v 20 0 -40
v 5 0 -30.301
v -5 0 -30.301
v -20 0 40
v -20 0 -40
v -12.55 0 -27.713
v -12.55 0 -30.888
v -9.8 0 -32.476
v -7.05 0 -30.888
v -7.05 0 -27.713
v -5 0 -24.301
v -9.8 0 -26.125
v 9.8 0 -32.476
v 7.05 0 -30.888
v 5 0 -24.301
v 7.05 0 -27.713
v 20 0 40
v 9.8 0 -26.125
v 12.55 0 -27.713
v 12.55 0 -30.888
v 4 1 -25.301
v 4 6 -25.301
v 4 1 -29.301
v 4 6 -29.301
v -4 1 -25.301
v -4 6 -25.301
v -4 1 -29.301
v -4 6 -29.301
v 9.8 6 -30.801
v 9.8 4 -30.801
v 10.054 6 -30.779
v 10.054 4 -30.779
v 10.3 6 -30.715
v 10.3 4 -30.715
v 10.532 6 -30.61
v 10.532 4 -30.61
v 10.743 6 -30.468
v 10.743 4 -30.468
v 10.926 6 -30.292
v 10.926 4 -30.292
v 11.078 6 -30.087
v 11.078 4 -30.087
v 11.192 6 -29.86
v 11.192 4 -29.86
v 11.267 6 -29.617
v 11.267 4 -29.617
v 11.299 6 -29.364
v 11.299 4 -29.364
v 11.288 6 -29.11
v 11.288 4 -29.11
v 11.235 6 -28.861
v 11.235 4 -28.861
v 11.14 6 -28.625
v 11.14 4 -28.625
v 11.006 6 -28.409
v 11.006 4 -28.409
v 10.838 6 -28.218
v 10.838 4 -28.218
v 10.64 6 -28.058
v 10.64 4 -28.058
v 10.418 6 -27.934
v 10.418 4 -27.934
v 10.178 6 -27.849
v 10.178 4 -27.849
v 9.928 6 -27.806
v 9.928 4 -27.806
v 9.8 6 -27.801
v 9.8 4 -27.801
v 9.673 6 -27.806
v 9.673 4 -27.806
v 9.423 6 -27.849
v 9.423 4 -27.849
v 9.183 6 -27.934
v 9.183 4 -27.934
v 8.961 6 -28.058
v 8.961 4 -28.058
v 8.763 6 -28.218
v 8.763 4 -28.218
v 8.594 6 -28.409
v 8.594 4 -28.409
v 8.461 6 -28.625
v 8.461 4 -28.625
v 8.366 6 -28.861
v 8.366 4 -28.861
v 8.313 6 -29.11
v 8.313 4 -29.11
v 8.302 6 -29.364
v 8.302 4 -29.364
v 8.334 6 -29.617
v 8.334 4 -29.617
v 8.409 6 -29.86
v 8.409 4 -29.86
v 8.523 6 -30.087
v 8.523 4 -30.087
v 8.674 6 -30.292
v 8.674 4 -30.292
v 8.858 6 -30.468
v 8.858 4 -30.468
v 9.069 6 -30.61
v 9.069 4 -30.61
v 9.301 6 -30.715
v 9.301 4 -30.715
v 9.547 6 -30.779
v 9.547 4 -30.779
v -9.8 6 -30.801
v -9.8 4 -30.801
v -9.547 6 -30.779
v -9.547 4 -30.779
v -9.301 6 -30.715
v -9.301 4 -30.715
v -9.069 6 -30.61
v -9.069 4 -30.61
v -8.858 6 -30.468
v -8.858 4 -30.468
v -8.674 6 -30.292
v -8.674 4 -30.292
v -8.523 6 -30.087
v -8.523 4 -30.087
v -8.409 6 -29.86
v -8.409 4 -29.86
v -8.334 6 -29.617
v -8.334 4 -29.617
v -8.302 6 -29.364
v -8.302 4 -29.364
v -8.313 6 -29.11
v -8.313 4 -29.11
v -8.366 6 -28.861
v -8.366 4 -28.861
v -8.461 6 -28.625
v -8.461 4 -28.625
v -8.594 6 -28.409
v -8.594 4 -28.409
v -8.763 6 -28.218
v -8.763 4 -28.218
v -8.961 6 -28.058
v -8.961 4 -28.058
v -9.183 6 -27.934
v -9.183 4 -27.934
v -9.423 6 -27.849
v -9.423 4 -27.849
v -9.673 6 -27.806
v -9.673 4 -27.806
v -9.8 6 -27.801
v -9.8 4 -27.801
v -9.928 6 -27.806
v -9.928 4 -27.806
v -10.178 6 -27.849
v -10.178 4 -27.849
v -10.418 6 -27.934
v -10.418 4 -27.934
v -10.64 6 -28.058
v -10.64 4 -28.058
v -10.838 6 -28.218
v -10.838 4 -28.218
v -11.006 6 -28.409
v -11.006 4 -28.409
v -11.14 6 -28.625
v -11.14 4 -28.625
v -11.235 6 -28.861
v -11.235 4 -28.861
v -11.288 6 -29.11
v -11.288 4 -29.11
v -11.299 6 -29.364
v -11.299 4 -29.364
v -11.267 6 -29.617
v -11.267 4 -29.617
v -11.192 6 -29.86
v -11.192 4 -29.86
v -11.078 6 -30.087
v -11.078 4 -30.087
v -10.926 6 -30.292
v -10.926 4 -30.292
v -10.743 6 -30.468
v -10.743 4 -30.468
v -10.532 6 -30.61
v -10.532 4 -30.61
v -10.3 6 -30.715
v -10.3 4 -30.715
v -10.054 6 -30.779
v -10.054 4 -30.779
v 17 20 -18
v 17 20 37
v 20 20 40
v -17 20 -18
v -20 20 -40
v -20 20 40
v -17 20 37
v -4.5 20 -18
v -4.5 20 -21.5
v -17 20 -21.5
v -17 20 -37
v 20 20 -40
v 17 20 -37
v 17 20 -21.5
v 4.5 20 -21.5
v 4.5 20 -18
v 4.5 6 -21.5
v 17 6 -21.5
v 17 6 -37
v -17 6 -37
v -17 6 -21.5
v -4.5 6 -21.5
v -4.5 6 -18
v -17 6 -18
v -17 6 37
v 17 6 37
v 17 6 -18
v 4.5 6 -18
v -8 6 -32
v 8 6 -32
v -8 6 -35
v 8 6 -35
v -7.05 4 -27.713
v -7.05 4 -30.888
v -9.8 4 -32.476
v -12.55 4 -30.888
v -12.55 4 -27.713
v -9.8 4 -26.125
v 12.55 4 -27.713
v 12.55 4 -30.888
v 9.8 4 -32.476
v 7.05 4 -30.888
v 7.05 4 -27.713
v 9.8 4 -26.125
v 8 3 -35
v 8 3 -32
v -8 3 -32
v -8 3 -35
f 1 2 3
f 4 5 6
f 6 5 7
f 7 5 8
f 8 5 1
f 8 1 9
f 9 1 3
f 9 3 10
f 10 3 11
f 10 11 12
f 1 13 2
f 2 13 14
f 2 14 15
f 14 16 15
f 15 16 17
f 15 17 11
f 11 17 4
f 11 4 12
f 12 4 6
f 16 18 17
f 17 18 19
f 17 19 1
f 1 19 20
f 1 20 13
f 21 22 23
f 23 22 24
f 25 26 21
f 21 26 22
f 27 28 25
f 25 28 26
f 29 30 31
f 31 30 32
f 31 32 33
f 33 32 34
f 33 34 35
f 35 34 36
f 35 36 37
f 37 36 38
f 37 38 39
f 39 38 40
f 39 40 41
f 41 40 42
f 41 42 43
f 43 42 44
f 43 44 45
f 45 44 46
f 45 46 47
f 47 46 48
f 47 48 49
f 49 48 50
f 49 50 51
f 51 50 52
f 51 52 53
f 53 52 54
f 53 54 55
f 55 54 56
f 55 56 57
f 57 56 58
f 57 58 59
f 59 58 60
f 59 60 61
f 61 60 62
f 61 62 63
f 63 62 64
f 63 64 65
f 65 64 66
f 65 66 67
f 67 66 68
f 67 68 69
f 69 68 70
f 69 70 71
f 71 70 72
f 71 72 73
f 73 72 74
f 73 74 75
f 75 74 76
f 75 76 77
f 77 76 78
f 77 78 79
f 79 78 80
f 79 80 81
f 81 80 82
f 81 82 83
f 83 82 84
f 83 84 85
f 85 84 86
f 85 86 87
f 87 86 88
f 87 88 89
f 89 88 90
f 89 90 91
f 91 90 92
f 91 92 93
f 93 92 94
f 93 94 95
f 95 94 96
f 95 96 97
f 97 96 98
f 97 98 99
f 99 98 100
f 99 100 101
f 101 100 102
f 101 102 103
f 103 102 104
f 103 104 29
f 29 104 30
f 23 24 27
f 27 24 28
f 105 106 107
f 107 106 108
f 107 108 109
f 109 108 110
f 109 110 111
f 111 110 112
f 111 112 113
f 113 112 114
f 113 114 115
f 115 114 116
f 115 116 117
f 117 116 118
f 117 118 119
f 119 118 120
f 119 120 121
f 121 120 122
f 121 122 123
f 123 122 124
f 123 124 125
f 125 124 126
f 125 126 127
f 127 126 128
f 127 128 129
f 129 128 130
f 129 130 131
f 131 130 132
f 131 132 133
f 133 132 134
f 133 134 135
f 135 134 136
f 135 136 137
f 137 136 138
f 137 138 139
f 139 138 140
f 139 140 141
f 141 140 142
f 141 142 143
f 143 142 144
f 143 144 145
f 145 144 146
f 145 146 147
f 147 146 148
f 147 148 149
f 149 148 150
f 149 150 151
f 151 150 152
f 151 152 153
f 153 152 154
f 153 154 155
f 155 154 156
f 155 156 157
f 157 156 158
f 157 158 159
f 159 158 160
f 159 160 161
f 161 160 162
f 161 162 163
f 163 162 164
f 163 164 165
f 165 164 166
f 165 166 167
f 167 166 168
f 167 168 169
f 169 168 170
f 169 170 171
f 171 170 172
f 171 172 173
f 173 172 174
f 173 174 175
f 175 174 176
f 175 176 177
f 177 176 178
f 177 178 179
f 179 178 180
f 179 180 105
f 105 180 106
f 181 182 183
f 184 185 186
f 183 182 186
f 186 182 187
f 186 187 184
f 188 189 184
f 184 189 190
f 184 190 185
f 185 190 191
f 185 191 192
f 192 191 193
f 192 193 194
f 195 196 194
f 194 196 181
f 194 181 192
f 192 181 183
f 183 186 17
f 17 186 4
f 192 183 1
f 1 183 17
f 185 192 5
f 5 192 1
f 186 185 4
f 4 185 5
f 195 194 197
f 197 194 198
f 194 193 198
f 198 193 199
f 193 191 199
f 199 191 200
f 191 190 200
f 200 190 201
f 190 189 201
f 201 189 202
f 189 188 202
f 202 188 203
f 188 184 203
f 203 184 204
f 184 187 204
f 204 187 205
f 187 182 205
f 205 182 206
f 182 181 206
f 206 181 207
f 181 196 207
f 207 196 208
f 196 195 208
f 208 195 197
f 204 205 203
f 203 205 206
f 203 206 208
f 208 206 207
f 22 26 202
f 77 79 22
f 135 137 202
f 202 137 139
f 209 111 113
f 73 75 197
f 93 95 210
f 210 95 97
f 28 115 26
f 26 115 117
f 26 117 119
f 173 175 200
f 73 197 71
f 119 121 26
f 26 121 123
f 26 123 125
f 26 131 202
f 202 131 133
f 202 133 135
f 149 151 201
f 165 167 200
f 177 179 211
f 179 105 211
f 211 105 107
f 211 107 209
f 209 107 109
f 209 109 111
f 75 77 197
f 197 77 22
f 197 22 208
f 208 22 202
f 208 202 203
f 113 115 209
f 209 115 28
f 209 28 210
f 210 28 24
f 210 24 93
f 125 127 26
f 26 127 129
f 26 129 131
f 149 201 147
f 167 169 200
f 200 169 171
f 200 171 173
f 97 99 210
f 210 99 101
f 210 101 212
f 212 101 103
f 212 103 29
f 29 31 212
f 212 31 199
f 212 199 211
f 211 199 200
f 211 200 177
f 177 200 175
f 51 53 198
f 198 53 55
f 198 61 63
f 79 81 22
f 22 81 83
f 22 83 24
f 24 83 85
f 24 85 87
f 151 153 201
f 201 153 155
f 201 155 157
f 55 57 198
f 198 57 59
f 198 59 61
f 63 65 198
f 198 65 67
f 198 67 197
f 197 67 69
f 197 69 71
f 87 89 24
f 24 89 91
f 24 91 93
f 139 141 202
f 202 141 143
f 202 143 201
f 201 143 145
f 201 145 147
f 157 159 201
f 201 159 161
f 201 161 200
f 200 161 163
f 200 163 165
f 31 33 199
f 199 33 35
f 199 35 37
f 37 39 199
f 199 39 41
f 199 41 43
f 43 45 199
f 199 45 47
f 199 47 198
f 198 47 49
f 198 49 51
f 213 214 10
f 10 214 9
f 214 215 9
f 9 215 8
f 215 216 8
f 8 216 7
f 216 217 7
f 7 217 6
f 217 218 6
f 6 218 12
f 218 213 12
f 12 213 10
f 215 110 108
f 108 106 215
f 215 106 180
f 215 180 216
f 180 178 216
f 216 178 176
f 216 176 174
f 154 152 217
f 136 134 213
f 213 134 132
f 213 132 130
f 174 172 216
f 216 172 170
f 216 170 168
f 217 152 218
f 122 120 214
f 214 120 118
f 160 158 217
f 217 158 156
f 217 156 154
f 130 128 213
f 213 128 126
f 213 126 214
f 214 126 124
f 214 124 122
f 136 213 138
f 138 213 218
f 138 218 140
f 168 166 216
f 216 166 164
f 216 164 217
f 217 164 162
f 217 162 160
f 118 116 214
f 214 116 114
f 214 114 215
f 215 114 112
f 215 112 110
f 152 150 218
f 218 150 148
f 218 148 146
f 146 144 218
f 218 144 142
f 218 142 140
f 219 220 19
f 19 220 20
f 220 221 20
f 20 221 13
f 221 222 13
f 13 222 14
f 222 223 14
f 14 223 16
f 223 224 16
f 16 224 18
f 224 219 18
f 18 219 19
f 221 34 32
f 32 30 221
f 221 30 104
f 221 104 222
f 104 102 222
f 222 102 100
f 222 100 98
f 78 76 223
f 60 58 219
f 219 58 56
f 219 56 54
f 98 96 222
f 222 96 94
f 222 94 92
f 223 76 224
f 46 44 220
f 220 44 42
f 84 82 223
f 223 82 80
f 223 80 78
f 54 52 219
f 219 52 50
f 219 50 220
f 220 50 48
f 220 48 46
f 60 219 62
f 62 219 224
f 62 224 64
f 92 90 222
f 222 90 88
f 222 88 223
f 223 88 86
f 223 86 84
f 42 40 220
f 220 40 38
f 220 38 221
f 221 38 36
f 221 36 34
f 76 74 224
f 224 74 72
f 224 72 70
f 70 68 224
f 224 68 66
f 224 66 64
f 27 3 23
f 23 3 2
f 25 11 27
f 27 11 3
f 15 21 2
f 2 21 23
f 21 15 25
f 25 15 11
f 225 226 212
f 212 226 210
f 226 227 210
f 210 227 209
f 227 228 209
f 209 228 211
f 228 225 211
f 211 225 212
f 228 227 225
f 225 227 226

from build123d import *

# Parameters (mm, degrees)
SKETCH1_W                = 40
SKETCH1_H                = 80
SKETCH1_W_2              = 8
SKETCH1_H_2              = 4
SKETCH1_R                = 1.5
INITIAL_EXTRUDE_DEPTH    = 20
MAIN_START               = 6
SKETCH1_3_W              = 8
SKETCH1_3_H              = 4
SKETCH1_3_R              = 1.5
MAIN_CAVITY_DEPTH        = 43.989794856
SKETCH1_4_R              = 1.5
NUT_CAPTURE_BOTTOM_DEPTH = 4
SENSOR_HOLE_CHAMFER_SIZE = 1
SKETCH3_W                = 16
SKETCH3_H                = 3
GPIO_CUTOUT_SENSOR_DEPTH = 3


with BuildPart() as part:
    # Sketch1 → Initial Extrude (new body)
    with BuildSketch(Plane(origin=(0, 0, 0), x_dir=(1, 0, 0), z_dir=(0, 1, 0))):
        Rectangle(SKETCH1_W, SKETCH1_H)
        with Locations((0, 27.300592934)):
            Rectangle(SKETCH1_W_2, SKETCH1_H_2, mode=Mode.SUBTRACT)
        with Locations((-9.800487558, 29.300592934)):
            Circle(SKETCH1_R, mode=Mode.SUBTRACT)
        with Locations((9.800487558, 29.300592934)):
            Circle(SKETCH1_R, mode=Mode.SUBTRACT)
    extrude(amount=INITIAL_EXTRUDE_DEPTH)

    # Sketch1<3> → Main Cavity (cut, through all)
    with BuildSketch(Plane(origin=(0, 0, 0), x_dir=(1, 0, 0), z_dir=(0, 1, 0)).offset(MAIN_START)):
        Polygon((-17, -37), (17, -37), (17, 18), (4.5, 18), (4.5, 21.5), (17, 21.5), (17, 37), (-17, 37), (-17, 21.5), (-4.5, 21.5), (-4.5, 18), (-17, 18), align=None)
        with Locations((0, 27.300592934)):
            Rectangle(SKETCH1_3_W, SKETCH1_3_H, mode=Mode.SUBTRACT)
        with Locations((-9.800487558, 29.300592934)):
            Circle(SKETCH1_3_R, mode=Mode.SUBTRACT)
        with Locations((9.800487558, 29.300592934)):
            Circle(SKETCH1_3_R, mode=Mode.SUBTRACT)
    extrude(amount=MAIN_CAVITY_DEPTH, mode=Mode.SUBTRACT)

    # Sketch1<4> → Nut Capture Bottom (cut)
    # profile 1 of 2: a face of its own
    with BuildSketch(Plane(origin=(0, 0, 0), x_dir=(1, 0, 0), z_dir=(0, 1, 0))):
        Polygon((-7.050487558, 30.888306174), (-9.800487558, 32.476019414), (-12.550487558, 30.888306174), (-12.550487558, 27.712879693), (-9.800487558, 26.125166453), (-7.050487558, 27.712879693), align=None)
        with Locations((-9.800487558, 29.300592934)):
            Circle(SKETCH1_4_R, mode=Mode.SUBTRACT)
    # profile 2 of 2: a face of its own
    with BuildSketch(Plane(origin=(0, 0, 0), x_dir=(1, 0, 0), z_dir=(0, 1, 0))):
        Polygon((12.550487558, 30.888306174), (9.800487558, 32.476019414), (7.050487558, 30.888306174), (7.050487558, 27.712879693), (9.800487558, 26.125166453), (12.550487558, 27.712879693), align=None)
        with Locations((9.800487558, 29.300592934)):
            Circle(SKETCH1_4_R, mode=Mode.SUBTRACT)
    extrude(amount=NUT_CAPTURE_BOTTOM_DEPTH, mode=Mode.SUBTRACT)

    # Sensor Hole Chamfer
    sensor_hole_chamfer_edges = [part.edges().sort_by_distance(p)[0] for p in [
        (0, 0, -25.300592934),
        (-4, 0, -27.300592934),
        (0, 0, -29.300592934),
        (4, 0, -27.300592934),
    ]]
    chamfer(sensor_hole_chamfer_edges, length=SENSOR_HOLE_CHAMFER_SIZE)

    # Sketch3 → GPIO Cutout Sensor (cut)
    with BuildSketch(Plane(origin=(0, 6, 0), x_dir=(1, 0, 0), z_dir=(0, 1, 0))):
        with Locations((0, 33.5)):
            Rectangle(SKETCH3_W, SKETCH3_H)
    extrude(amount=-GPIO_CUTOUT_SENSOR_DEPTH, mode=Mode.SUBTRACT)


solid = part.part
